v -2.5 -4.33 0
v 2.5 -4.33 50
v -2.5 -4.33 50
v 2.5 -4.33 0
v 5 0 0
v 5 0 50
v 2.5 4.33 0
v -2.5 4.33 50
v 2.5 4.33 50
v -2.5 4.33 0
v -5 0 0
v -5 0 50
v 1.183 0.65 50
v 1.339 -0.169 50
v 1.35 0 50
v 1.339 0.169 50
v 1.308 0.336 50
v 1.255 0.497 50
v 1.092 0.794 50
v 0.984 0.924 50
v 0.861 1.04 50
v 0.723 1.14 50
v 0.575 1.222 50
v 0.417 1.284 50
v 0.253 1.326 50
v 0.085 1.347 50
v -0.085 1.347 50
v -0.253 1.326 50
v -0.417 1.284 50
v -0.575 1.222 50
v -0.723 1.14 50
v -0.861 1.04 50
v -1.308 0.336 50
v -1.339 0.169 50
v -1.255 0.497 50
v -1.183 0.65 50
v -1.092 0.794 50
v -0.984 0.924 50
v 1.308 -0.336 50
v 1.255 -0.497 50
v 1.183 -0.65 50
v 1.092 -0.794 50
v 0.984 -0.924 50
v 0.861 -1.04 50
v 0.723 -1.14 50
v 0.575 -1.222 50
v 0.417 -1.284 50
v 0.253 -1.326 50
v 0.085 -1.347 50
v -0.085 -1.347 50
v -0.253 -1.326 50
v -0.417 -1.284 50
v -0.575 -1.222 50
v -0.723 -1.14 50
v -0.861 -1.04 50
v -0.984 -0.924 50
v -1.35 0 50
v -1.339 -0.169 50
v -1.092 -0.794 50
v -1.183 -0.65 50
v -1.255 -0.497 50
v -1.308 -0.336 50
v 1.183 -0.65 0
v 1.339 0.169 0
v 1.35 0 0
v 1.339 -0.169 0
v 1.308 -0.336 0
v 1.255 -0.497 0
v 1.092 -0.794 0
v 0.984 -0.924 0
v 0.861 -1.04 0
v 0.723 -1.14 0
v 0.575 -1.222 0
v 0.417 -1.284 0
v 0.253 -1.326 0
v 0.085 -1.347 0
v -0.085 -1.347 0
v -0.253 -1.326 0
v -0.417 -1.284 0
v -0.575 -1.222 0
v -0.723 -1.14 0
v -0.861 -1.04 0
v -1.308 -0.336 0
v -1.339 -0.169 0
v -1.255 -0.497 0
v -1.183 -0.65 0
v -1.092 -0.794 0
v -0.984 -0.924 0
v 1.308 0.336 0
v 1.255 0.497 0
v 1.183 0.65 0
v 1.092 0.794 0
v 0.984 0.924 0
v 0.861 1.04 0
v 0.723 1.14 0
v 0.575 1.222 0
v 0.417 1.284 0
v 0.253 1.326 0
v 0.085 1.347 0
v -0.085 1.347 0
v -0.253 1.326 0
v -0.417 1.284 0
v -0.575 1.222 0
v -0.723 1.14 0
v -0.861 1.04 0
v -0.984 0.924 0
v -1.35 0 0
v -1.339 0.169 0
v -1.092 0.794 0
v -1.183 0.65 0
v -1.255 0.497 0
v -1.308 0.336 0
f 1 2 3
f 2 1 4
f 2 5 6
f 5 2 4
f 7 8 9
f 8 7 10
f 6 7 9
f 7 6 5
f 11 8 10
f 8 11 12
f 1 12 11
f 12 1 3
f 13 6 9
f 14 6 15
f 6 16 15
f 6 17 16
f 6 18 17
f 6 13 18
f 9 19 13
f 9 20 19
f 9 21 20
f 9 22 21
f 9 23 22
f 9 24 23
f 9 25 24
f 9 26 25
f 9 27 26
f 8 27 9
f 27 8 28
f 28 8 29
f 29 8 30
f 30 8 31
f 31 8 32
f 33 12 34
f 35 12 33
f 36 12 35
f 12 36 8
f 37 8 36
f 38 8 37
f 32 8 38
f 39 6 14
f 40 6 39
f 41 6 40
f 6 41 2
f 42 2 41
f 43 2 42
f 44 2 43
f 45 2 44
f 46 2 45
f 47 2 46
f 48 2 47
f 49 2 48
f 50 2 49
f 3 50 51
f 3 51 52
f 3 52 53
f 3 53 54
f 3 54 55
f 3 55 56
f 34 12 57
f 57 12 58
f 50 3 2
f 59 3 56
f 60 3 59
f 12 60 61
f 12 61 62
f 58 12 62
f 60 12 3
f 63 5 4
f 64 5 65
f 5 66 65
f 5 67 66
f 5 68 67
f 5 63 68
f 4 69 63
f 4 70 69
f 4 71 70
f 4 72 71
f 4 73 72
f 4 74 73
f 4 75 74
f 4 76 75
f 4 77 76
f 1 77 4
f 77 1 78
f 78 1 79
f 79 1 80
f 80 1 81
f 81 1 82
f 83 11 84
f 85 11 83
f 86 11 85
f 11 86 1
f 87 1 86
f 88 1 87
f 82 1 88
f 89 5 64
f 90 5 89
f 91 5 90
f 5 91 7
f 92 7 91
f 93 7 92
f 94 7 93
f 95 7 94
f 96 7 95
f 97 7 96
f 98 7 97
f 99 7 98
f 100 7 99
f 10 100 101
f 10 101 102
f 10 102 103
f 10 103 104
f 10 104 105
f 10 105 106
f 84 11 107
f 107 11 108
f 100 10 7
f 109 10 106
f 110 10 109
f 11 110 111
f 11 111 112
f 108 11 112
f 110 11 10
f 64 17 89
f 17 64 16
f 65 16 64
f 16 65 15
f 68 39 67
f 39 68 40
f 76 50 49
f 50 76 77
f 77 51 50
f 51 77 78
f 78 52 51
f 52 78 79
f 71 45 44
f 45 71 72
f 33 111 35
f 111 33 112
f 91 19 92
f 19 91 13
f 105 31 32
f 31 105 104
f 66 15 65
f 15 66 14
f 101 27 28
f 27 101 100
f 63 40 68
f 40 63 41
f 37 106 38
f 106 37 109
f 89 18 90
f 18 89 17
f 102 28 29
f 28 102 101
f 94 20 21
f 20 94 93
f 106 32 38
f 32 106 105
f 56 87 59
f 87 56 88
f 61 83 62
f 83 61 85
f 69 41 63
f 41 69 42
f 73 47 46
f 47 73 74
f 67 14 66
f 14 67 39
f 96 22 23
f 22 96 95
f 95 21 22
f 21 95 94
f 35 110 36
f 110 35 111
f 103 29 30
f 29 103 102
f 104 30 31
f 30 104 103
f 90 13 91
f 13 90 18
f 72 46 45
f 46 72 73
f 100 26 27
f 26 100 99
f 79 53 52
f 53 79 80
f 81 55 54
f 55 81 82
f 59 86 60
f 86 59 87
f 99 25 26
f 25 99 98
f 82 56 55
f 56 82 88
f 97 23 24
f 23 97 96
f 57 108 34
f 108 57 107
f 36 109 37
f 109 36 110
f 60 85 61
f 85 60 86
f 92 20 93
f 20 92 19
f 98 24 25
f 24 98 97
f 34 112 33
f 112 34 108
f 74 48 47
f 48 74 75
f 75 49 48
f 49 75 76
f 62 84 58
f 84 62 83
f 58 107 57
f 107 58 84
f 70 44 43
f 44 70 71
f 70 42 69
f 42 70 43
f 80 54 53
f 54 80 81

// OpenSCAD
$fn = 50;

difference(){
    cylinder($fn = 6, d=10,h=50);
    cylinder(d=2.7,h=51);
}
